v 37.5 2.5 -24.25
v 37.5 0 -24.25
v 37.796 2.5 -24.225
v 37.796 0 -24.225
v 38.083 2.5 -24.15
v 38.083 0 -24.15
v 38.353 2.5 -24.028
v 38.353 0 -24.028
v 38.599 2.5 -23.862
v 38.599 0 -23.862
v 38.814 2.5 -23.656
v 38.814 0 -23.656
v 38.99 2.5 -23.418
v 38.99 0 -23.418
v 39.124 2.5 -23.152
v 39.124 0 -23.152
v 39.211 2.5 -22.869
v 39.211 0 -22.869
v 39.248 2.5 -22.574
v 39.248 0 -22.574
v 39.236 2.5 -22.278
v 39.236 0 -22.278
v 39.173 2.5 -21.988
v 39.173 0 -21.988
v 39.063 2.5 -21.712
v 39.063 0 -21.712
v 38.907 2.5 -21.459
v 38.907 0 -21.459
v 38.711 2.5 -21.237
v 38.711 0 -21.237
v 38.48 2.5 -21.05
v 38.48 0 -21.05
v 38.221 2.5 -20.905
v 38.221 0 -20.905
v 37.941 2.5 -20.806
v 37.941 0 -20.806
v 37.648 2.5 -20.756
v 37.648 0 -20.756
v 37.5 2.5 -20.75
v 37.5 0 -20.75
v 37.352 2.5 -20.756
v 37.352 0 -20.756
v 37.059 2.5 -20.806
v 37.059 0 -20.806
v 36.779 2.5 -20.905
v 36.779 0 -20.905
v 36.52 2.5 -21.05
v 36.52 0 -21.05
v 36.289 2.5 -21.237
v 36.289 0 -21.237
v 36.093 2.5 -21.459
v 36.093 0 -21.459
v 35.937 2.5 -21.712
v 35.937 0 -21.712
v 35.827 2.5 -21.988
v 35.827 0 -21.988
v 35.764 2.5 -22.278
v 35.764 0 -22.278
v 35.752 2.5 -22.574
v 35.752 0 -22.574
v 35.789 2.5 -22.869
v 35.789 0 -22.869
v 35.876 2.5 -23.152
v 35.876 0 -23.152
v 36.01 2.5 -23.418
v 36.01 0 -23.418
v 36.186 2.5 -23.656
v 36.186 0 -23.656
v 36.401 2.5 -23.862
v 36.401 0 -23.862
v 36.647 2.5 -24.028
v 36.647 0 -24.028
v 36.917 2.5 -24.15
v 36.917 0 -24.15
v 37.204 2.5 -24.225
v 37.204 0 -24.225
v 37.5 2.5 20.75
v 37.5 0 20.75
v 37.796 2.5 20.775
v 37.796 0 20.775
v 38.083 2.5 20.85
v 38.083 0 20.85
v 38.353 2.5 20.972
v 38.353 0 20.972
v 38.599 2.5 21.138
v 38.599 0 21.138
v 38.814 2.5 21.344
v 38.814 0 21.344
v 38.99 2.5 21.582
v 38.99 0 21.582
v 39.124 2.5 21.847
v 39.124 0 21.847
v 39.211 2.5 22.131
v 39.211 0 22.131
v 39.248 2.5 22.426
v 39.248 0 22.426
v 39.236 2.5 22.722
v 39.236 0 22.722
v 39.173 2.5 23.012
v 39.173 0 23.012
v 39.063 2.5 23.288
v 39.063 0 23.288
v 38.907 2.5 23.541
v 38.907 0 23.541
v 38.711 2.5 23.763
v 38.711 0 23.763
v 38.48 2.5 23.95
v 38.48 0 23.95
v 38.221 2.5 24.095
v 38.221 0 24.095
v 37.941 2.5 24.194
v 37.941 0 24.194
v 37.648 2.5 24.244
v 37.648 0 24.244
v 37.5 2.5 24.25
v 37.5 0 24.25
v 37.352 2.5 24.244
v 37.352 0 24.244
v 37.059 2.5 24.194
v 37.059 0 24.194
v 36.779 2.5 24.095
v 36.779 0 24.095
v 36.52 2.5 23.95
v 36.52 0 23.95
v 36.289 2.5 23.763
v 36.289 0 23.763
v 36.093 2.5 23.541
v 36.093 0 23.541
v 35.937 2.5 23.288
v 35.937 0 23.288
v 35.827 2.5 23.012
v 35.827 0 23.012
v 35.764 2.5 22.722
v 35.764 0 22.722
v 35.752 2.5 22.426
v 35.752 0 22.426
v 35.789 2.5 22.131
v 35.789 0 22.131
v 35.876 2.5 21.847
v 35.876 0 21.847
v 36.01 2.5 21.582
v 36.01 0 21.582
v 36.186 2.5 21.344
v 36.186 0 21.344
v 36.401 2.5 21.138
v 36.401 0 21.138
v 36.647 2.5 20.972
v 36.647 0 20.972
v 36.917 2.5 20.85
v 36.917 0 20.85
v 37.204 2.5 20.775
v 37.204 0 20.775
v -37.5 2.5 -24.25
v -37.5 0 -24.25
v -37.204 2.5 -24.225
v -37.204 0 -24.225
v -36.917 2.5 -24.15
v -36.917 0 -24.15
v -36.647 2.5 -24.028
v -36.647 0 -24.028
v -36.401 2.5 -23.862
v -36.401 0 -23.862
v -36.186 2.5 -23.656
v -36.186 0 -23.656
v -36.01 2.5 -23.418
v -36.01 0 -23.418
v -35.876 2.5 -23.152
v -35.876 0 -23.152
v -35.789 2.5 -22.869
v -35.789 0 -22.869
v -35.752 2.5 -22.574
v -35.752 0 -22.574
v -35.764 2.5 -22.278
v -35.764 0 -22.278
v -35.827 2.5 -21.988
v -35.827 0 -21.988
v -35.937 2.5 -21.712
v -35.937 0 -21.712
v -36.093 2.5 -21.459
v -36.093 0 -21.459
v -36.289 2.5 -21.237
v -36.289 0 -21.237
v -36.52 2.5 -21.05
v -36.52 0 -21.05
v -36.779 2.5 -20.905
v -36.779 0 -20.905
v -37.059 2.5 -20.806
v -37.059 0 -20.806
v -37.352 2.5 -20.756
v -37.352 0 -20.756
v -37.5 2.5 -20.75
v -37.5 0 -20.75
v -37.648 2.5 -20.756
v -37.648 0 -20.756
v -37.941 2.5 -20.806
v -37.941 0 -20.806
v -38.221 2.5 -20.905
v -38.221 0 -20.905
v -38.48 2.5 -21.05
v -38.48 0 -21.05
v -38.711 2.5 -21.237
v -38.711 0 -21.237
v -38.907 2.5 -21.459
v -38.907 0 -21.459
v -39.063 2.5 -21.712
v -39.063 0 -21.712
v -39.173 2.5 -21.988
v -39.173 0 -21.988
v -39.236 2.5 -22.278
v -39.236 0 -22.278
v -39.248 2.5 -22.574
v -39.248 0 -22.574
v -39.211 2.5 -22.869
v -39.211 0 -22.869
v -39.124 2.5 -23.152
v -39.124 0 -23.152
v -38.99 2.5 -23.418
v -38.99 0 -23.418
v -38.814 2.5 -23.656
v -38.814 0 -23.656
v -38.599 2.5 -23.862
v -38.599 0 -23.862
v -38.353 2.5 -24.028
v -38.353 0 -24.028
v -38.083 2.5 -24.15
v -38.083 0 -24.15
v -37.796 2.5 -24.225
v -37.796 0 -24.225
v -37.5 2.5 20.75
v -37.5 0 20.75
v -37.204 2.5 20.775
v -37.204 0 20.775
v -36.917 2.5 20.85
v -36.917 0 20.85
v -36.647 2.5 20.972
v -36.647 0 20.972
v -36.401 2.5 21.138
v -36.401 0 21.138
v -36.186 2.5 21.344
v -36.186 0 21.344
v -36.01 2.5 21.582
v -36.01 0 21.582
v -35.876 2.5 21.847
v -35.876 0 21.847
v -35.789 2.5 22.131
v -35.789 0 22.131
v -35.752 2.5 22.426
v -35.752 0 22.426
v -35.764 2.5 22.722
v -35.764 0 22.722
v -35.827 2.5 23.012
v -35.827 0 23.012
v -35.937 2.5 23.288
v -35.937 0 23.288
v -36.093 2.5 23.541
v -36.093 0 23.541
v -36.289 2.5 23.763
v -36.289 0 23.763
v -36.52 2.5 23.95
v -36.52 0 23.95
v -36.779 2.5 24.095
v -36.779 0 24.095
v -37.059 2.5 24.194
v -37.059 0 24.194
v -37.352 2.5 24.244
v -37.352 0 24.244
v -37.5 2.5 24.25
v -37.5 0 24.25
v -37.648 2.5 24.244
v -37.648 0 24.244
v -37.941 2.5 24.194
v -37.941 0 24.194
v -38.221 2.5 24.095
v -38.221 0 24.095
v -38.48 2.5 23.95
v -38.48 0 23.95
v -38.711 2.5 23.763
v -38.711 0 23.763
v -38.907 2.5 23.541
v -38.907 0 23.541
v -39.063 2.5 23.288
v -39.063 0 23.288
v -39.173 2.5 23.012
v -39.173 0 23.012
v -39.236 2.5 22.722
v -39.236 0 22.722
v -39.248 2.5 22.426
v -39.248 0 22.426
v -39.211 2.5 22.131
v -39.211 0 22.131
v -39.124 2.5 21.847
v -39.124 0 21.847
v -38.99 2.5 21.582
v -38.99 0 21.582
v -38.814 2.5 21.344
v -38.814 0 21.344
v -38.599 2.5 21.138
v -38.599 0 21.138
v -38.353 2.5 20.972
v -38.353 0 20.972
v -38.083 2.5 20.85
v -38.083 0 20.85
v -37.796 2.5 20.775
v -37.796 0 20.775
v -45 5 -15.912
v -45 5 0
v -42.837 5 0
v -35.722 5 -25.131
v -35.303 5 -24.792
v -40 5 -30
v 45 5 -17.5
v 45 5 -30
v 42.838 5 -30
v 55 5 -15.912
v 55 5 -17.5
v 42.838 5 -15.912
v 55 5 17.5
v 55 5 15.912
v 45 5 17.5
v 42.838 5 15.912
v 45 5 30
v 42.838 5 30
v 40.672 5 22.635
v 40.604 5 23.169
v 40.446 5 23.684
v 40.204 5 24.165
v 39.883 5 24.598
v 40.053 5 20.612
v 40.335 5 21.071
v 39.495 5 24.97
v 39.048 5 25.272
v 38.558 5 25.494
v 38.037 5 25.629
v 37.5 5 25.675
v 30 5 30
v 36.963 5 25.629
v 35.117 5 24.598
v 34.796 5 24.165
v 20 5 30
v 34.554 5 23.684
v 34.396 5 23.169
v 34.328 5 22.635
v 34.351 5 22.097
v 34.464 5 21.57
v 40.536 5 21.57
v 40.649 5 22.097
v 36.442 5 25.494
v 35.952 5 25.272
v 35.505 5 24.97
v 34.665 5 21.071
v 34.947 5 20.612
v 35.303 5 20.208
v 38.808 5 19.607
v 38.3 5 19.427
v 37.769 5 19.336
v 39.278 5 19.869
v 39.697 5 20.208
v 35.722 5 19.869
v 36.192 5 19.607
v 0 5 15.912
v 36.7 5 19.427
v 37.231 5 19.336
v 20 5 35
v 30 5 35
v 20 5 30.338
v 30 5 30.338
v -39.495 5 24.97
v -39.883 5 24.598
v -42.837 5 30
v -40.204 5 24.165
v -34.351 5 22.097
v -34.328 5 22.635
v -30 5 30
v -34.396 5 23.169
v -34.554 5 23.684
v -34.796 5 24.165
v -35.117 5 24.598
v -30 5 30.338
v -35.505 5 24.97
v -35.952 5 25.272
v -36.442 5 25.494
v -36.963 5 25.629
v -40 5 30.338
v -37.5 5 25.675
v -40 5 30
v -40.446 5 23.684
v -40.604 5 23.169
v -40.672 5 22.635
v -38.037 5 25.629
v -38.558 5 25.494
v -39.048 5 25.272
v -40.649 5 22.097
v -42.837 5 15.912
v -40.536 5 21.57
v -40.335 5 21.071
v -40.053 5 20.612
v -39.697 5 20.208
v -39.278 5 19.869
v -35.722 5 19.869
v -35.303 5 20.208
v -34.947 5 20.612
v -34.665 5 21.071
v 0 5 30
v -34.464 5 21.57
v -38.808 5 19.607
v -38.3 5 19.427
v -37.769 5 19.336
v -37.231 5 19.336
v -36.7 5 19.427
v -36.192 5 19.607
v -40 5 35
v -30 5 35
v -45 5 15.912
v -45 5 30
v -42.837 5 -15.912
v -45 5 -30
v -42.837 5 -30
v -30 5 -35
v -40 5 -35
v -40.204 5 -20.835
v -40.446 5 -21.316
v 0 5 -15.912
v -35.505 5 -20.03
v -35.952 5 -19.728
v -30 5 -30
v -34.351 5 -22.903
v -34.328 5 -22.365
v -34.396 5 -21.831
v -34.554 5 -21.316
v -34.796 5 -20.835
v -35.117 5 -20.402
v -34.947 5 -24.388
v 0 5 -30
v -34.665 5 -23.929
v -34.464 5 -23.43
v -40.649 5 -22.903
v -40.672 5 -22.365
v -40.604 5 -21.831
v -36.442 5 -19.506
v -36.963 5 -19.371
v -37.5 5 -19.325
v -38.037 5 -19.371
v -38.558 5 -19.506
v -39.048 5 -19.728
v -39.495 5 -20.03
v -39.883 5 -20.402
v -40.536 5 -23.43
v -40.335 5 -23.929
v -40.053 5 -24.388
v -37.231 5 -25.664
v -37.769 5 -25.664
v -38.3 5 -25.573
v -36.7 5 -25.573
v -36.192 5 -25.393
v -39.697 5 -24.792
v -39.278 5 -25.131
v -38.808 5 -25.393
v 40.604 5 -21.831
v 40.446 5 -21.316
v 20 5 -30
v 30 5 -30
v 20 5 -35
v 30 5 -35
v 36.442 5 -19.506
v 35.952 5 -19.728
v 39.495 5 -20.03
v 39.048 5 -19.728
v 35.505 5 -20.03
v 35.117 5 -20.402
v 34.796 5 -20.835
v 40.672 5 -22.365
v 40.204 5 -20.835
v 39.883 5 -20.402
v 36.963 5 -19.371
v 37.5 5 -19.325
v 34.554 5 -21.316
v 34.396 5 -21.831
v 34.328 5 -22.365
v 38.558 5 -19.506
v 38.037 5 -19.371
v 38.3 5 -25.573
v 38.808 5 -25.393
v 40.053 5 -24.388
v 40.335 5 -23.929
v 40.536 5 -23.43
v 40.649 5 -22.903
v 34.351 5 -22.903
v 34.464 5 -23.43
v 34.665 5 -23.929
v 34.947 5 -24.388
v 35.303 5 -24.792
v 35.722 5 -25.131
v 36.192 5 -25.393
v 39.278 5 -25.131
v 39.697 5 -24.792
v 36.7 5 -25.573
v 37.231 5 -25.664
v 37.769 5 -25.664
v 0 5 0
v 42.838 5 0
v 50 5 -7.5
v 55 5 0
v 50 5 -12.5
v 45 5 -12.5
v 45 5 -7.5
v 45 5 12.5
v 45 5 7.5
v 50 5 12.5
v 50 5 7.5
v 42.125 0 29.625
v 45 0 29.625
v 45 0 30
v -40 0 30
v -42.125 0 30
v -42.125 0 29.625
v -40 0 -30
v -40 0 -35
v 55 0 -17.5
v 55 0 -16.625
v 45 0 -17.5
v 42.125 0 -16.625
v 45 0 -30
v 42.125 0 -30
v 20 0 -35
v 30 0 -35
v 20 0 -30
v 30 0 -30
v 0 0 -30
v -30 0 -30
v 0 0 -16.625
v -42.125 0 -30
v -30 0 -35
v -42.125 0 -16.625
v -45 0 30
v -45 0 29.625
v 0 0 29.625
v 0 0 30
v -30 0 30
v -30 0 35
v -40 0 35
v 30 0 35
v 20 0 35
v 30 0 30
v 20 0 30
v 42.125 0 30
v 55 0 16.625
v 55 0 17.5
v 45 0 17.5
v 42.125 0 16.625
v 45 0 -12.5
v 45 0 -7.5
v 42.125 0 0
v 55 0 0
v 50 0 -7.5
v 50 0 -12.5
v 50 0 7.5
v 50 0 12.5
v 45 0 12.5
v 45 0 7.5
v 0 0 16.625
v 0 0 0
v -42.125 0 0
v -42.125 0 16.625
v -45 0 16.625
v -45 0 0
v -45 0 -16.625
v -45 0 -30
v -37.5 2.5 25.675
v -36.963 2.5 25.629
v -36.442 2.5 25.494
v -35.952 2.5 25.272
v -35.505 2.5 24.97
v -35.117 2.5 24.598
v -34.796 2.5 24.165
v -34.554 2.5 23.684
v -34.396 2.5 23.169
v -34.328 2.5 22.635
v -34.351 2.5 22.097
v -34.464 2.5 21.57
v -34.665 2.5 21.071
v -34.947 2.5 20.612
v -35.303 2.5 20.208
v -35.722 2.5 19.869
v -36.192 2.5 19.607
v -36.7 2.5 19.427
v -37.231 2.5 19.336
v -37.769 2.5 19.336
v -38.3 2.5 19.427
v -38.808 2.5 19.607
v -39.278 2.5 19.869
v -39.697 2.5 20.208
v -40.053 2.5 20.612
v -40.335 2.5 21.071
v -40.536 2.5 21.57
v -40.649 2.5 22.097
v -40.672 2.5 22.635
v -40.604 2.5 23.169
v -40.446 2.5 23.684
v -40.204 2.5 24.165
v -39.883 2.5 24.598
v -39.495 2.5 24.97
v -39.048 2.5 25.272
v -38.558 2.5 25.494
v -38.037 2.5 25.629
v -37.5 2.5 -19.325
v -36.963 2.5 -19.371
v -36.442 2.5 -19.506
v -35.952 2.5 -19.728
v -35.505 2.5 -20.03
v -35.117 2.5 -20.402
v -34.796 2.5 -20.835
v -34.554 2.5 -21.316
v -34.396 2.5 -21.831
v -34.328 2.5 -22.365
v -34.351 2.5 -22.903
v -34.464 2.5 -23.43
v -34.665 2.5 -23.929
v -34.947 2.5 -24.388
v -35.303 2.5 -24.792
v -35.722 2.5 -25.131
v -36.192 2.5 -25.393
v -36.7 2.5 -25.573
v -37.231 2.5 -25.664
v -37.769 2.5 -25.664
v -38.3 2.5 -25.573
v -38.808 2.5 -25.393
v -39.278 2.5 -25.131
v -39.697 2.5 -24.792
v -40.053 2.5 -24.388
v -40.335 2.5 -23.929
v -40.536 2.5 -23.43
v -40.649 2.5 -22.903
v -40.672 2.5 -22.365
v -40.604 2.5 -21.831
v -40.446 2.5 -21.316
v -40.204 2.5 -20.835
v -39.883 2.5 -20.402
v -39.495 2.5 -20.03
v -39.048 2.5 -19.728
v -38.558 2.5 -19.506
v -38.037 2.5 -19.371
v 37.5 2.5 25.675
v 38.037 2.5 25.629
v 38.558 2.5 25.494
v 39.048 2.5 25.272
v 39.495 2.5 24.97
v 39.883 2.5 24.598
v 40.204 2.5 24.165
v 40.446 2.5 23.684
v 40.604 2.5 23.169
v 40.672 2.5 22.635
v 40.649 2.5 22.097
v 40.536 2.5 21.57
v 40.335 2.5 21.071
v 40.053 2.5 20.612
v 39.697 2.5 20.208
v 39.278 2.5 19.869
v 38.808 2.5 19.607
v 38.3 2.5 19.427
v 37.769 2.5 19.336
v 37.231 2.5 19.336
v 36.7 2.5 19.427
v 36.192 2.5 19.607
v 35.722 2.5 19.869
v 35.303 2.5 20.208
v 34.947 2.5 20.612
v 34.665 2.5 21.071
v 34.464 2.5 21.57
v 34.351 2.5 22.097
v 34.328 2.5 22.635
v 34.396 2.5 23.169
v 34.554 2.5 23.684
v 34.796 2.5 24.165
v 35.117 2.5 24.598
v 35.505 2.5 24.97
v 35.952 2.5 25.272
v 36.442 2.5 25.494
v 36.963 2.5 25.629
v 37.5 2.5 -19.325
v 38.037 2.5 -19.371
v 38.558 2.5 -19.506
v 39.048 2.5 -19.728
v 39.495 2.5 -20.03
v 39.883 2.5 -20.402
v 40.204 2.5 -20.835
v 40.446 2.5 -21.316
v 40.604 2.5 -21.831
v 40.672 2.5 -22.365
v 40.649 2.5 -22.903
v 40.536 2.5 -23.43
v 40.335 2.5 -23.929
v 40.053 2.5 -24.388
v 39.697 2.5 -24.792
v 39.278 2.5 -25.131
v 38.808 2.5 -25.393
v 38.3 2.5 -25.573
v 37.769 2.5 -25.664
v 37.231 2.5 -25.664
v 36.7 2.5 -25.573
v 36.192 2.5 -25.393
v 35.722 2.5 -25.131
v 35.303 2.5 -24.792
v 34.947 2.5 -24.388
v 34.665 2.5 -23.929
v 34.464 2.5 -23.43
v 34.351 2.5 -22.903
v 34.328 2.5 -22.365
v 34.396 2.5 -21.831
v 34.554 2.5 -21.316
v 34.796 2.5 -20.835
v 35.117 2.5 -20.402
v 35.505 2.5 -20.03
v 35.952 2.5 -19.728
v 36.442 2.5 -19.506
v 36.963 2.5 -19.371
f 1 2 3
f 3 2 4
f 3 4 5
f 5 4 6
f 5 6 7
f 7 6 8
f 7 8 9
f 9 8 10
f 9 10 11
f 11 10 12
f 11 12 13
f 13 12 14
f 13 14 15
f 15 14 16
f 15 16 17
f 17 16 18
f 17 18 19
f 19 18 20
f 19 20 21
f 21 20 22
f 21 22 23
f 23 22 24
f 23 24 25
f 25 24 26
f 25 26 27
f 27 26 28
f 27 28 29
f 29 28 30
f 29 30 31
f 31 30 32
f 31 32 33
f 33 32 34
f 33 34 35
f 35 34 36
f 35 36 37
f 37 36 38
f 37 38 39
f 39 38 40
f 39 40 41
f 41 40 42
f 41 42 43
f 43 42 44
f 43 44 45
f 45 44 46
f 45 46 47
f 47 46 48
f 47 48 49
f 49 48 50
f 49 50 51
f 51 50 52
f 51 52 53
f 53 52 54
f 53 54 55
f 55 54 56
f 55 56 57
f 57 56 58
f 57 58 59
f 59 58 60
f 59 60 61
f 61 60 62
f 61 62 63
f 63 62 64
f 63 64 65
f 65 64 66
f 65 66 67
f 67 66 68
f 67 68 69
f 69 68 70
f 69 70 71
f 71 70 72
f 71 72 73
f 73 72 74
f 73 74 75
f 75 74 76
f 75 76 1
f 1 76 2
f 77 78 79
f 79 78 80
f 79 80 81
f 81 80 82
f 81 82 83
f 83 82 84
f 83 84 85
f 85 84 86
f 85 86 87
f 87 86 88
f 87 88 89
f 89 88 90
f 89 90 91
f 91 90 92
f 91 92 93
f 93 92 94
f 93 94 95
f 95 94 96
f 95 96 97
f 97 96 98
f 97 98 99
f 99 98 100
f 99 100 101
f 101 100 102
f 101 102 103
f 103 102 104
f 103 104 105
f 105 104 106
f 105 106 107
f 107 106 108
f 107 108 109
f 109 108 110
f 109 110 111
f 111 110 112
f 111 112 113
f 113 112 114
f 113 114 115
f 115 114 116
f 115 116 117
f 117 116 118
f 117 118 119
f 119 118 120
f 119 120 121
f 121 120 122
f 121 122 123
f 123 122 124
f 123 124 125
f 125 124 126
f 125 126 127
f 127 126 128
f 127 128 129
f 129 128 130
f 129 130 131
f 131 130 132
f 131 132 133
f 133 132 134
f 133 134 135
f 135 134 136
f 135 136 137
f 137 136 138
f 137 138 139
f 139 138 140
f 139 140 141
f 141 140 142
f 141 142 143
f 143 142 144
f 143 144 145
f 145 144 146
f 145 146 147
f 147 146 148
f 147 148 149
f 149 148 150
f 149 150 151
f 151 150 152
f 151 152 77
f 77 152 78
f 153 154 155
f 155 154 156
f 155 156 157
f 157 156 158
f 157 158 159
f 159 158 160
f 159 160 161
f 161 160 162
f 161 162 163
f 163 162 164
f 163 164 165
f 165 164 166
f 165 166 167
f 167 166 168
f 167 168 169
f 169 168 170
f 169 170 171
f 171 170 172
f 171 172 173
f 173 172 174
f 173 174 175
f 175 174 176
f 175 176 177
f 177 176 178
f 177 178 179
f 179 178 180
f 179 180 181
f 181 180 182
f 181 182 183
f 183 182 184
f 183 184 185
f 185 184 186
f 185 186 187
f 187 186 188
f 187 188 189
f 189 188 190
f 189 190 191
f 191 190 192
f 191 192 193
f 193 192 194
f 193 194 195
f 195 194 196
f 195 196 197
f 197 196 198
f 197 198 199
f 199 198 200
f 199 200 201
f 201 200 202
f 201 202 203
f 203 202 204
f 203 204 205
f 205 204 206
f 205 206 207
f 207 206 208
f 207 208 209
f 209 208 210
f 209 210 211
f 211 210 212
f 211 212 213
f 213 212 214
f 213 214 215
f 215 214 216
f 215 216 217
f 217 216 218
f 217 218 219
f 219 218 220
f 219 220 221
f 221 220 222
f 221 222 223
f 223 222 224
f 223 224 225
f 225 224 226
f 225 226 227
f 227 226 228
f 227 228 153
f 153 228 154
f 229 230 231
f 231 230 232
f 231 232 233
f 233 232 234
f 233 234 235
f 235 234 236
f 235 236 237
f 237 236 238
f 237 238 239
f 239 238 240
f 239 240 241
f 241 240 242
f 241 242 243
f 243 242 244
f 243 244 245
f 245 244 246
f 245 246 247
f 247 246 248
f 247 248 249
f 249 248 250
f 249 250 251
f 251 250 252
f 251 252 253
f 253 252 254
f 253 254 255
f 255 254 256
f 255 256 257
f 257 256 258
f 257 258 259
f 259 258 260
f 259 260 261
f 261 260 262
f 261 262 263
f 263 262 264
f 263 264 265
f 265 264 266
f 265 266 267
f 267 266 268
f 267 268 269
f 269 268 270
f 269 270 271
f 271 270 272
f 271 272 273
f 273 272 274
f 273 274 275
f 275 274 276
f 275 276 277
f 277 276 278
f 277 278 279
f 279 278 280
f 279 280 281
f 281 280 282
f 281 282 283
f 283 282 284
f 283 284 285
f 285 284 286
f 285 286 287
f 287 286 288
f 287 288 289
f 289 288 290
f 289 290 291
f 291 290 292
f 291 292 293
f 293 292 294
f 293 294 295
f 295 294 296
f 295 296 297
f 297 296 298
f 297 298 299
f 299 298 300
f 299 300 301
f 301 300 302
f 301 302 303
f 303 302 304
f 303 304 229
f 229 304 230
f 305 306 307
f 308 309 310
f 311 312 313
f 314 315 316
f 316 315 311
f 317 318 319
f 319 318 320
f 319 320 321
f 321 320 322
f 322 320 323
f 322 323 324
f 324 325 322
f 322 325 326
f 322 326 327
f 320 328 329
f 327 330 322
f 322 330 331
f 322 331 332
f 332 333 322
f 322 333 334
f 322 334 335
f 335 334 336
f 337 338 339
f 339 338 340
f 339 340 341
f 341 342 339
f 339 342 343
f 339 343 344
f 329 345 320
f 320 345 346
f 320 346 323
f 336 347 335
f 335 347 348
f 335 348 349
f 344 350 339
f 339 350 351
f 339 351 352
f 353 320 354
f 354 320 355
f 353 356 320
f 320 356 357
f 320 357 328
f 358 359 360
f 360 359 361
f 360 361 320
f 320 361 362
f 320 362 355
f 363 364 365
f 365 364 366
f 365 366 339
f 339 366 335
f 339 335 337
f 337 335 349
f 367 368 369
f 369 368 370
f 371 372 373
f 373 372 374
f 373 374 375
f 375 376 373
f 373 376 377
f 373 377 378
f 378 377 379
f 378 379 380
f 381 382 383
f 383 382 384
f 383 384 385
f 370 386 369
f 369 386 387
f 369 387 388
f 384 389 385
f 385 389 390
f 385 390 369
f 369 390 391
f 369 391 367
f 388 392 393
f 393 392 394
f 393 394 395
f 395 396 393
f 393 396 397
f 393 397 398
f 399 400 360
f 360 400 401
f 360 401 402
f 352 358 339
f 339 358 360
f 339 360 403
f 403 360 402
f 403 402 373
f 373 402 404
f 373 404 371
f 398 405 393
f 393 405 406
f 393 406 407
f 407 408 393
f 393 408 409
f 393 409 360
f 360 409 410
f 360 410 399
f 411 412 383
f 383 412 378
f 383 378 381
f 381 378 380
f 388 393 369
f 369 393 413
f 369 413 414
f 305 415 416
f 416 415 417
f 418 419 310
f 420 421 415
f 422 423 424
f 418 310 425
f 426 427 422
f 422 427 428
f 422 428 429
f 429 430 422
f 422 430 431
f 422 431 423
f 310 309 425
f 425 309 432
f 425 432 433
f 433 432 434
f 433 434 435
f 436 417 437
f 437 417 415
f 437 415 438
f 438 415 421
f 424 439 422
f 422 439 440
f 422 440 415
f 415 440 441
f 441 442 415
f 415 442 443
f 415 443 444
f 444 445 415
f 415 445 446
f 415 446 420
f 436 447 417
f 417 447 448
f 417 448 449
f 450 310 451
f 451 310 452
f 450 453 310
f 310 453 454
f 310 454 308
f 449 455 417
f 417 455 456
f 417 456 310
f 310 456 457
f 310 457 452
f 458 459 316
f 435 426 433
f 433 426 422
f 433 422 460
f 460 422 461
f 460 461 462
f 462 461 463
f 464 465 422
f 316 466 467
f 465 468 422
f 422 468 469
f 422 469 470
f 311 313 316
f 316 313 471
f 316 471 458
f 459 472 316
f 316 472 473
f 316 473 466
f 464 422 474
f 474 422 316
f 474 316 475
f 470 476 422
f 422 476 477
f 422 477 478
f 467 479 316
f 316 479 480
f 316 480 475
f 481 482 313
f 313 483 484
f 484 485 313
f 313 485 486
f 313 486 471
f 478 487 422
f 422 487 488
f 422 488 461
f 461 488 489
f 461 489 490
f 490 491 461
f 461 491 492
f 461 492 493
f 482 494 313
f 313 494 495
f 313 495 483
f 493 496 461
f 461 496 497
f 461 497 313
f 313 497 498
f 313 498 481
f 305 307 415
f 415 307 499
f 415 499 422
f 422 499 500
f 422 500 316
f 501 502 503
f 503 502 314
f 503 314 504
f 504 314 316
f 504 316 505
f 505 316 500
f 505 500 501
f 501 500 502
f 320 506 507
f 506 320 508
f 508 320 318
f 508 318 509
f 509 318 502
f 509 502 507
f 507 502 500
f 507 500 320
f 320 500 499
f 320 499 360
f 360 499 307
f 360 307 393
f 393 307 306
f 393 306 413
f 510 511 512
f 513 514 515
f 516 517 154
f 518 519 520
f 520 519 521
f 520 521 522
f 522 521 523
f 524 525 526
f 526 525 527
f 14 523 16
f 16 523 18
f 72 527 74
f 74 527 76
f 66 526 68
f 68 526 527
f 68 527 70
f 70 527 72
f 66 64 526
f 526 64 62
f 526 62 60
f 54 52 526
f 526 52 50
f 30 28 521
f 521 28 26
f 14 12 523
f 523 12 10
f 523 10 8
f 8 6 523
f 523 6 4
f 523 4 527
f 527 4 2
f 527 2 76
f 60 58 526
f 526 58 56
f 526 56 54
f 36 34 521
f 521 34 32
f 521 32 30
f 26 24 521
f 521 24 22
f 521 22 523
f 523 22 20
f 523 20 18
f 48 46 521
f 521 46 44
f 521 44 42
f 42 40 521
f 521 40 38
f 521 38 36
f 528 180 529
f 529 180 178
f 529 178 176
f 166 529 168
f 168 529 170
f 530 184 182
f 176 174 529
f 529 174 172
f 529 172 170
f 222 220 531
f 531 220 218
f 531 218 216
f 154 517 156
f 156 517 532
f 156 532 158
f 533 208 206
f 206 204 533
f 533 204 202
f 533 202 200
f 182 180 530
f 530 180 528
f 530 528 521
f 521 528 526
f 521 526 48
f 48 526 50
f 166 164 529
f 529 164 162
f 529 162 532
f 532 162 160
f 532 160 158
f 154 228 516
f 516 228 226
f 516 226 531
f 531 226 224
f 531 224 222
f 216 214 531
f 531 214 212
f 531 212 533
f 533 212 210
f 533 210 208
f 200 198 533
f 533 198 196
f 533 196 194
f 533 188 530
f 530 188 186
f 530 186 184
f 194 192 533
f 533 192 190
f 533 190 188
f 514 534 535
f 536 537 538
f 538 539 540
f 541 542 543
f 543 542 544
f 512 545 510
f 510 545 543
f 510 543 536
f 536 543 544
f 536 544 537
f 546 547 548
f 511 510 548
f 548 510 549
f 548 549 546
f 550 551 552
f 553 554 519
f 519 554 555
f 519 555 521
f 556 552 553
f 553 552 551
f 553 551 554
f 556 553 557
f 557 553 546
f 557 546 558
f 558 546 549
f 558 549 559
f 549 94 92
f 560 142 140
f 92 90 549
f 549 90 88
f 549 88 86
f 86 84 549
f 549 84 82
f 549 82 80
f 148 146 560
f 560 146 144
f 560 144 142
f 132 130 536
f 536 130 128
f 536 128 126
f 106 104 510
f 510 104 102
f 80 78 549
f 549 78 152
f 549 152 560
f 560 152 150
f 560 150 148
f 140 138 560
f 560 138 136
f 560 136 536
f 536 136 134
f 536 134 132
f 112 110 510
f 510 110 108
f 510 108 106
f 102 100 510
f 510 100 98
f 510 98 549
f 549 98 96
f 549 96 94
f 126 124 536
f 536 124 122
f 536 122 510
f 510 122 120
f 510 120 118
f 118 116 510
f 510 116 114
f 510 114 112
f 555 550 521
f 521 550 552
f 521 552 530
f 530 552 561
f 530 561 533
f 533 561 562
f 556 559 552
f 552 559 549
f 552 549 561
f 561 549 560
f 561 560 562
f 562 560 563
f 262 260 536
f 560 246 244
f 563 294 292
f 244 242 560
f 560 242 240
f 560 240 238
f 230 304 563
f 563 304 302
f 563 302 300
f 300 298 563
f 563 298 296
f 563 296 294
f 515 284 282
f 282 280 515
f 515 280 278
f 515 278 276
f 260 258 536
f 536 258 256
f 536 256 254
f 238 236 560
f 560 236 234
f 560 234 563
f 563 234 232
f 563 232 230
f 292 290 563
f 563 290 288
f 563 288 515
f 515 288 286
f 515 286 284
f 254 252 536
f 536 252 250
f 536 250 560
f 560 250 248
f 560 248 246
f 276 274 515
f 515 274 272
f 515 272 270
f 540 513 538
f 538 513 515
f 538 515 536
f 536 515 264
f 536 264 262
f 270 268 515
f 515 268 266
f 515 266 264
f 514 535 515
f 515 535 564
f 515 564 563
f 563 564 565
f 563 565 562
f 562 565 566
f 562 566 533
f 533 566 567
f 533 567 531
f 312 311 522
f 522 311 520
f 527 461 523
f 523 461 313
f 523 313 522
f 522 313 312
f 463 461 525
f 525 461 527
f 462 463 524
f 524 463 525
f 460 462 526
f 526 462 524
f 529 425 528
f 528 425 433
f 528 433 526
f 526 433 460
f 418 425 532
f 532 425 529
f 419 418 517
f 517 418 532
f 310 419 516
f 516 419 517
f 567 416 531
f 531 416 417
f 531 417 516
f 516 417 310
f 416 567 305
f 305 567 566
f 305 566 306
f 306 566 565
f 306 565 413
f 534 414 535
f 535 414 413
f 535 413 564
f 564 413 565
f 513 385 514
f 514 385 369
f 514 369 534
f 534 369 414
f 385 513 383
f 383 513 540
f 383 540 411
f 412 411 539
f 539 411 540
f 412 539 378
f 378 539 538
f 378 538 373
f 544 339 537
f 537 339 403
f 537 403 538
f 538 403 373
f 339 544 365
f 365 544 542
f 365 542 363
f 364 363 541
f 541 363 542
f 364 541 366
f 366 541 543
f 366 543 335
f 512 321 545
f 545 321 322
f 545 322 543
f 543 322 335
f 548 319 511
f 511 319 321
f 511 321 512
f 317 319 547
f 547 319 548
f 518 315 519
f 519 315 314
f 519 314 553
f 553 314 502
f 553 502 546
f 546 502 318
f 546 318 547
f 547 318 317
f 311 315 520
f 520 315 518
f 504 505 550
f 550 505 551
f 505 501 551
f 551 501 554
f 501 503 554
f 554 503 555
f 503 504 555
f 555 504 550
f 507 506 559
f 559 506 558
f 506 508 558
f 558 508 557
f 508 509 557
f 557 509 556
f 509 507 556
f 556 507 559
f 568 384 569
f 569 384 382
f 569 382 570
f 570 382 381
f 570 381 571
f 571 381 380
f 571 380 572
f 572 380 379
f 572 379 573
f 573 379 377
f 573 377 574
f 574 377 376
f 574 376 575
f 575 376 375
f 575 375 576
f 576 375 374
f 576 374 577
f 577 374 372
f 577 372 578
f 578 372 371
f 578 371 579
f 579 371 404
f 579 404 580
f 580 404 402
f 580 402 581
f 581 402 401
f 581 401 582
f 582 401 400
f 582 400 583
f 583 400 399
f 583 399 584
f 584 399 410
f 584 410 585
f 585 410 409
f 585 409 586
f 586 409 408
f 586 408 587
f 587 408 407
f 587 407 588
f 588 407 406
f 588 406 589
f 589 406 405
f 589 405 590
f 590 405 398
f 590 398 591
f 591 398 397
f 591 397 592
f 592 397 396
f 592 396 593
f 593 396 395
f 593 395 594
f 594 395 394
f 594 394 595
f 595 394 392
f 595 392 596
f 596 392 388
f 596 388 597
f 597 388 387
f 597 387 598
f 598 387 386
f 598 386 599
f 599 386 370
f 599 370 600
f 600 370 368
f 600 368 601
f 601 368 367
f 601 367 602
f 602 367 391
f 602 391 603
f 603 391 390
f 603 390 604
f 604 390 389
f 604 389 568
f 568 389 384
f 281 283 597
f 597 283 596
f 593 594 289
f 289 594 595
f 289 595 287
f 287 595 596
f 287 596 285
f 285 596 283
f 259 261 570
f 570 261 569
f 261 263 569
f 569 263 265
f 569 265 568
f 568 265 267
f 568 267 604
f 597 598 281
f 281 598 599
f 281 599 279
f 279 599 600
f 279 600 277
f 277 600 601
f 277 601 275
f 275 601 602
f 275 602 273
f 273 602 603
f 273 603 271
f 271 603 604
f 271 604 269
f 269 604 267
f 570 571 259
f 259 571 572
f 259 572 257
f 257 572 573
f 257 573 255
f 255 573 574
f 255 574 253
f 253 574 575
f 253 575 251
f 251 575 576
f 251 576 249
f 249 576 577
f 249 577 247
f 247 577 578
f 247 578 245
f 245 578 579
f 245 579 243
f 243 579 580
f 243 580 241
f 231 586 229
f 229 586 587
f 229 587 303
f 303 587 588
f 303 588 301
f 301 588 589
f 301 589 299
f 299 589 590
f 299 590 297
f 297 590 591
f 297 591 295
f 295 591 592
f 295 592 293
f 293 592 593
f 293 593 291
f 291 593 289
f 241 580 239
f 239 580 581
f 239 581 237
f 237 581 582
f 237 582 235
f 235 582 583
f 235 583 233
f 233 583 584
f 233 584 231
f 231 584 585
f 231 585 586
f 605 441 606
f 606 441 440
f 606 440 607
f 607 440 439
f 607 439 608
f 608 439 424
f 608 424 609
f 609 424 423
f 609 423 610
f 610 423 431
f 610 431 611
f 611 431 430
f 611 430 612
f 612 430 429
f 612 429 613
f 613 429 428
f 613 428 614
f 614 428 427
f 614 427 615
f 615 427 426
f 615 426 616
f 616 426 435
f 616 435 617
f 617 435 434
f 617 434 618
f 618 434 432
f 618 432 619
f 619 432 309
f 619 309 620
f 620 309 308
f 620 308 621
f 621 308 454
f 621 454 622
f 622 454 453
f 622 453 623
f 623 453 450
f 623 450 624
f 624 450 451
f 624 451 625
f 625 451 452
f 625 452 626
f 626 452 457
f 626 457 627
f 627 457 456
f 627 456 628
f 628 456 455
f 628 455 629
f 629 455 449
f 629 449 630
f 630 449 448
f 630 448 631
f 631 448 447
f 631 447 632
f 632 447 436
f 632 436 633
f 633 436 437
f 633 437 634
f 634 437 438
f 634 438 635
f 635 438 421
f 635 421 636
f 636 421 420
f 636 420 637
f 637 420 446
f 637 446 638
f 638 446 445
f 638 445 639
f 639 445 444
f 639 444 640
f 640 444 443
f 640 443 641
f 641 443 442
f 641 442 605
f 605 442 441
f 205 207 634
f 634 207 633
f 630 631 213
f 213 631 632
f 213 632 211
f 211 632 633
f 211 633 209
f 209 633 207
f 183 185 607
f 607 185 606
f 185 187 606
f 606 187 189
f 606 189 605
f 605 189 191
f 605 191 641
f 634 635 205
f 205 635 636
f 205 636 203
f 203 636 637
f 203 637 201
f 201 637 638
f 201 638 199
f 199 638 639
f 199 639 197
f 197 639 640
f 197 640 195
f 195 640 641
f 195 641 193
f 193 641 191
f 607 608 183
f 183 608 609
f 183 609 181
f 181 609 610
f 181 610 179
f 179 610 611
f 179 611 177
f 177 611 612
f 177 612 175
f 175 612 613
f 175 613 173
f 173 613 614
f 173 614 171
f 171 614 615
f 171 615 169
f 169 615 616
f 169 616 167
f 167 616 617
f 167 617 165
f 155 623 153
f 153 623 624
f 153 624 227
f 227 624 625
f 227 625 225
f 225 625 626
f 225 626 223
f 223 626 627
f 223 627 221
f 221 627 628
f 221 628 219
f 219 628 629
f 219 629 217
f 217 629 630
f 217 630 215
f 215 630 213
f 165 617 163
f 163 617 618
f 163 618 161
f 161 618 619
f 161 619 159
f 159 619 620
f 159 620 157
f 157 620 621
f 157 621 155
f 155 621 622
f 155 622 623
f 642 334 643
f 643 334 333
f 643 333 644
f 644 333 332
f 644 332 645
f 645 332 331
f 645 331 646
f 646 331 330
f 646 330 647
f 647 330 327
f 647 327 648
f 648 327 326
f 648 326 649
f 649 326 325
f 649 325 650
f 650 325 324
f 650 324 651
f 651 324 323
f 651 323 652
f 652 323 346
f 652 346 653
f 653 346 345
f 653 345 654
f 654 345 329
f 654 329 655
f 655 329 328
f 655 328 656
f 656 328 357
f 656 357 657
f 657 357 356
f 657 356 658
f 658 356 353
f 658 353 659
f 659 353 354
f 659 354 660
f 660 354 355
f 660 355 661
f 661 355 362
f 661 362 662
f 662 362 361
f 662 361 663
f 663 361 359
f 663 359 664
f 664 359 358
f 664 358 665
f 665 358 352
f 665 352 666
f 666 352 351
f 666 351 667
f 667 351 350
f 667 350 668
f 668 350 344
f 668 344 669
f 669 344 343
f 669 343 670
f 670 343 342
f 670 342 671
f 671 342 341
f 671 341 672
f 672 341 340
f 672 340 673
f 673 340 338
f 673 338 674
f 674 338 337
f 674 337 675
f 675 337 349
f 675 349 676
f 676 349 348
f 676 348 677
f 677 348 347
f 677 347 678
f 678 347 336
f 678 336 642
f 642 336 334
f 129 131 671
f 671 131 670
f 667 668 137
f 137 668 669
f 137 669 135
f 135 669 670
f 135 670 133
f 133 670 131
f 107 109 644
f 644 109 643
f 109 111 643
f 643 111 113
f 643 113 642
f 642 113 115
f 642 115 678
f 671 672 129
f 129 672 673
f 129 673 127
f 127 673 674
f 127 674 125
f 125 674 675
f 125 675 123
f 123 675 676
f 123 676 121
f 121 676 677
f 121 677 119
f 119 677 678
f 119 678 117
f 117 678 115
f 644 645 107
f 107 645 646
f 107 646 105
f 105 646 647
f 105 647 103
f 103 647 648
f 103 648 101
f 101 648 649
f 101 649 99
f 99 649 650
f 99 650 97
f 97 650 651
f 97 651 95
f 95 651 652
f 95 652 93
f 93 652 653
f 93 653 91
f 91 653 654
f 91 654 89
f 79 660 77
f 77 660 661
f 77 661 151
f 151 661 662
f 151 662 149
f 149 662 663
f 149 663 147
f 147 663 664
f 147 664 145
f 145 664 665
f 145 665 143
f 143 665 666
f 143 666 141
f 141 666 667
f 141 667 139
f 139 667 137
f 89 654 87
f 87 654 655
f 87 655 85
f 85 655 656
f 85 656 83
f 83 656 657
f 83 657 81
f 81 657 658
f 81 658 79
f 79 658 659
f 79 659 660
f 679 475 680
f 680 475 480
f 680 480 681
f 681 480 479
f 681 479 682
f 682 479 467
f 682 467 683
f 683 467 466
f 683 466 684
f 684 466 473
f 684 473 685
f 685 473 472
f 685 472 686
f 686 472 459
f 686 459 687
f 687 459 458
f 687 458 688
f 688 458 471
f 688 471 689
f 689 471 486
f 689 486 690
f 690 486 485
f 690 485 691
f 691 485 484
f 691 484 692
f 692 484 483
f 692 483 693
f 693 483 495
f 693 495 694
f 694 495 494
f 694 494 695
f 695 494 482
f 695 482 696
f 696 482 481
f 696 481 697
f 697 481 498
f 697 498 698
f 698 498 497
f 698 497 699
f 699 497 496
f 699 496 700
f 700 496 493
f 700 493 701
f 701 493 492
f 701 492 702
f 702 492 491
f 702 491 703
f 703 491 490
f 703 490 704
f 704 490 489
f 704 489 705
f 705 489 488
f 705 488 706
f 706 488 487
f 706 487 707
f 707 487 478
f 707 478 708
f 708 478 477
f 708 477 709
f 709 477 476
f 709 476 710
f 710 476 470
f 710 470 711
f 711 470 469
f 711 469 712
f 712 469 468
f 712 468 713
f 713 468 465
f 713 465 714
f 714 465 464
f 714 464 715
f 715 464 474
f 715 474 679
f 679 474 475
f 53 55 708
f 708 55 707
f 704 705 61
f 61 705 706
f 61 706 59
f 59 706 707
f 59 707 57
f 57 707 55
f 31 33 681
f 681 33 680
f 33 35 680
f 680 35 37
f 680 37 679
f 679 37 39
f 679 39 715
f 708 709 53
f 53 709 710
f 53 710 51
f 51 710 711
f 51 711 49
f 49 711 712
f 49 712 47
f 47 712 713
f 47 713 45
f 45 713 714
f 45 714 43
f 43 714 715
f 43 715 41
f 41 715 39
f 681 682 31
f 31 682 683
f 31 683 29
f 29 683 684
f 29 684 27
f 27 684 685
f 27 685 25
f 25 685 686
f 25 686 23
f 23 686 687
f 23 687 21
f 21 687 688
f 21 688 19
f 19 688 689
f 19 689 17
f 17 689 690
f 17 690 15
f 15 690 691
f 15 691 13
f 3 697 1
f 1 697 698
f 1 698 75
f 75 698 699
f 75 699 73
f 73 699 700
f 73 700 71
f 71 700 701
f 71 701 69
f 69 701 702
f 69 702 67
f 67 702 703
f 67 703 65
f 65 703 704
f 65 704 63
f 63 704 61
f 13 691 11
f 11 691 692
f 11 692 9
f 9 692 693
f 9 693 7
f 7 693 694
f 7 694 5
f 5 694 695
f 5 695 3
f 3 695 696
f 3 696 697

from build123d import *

# Parameters (mm, degrees)
SKETCH1_R           = 1.75
SKETCH1_W           = 5
SKETCH1_H           = 5
BOSS_EXTRUDE1_DEPTH = 5
SKETCH2_R           = 3.175
CUT_EXTRUDE1_DEPTH  = 2.5


with BuildPart() as part:
    # Sketch1 → Boss-Extrude1 (new body)
    with BuildSketch(Plane(origin=(0, 0, 0), x_dir=(1, 0, 0), z_dir=(0, 1, 0))):
        Polygon((30, 30), (45, 30), (45, 17.5), (55, 17.5), (55, -17.5), (45, -17.5), (45, -30), (30, -30), (30, -35), (20, -35), (20, -30), (-30, -30), (-30, -35), (-40, -35), (-40, -30), (-45, -30), (-45, 30), (-40, 30), (-40, 35), (-30, 35), (-30, 30), (20, 30), (20, 35), (30, 35), align=None)
        with Locations(Location((37.5, 22.5, 0), (0, 0, 270))):
            Circle(SKETCH1_R, mode=Mode.SUBTRACT)
        with Locations(Location((37.5, -22.5, 0), (0, 0, 270))):
            Circle(SKETCH1_R, mode=Mode.SUBTRACT)
        with Locations(Location((-37.5, 22.5, 0), (0, 0, 270))):
            Circle(SKETCH1_R, mode=Mode.SUBTRACT)
        with Locations(Location((-37.5, -22.5, 0), (0, 0, 270))):
            Circle(SKETCH1_R, mode=Mode.SUBTRACT)
        with Locations((47.5, 10)):
            Rectangle(SKETCH1_W, SKETCH1_H, mode=Mode.SUBTRACT)
        with Locations((47.5, -10)):
            Rectangle(SKETCH1_W, SKETCH1_H, mode=Mode.SUBTRACT)
    extrude(amount=BOSS_EXTRUDE1_DEPTH)

    # Sketch2 → Cut-Extrude1 (cut)
    with BuildSketch(Plane(origin=(0, 5, 0), x_dir=(1, 0, 0), z_dir=(0, 1, 0))):
        with Locations(Location((-37.5, 22.5, 0), (0, 0, 270))):
            Circle(SKETCH2_R)
        with Locations(Location((-37.5, -22.5, 0), (0, 0, 270))):
            Circle(SKETCH2_R)
        with Locations(Location((37.5, 22.5, 0), (0, 0, 270))):
            Circle(SKETCH2_R)
        with Locations(Location((37.5, -22.5, 0), (0, 0, 270))):
            Circle(SKETCH2_R)
    extrude(amount=-CUT_EXTRUDE1_DEPTH, mode=Mode.SUBTRACT)


solid = part.part
